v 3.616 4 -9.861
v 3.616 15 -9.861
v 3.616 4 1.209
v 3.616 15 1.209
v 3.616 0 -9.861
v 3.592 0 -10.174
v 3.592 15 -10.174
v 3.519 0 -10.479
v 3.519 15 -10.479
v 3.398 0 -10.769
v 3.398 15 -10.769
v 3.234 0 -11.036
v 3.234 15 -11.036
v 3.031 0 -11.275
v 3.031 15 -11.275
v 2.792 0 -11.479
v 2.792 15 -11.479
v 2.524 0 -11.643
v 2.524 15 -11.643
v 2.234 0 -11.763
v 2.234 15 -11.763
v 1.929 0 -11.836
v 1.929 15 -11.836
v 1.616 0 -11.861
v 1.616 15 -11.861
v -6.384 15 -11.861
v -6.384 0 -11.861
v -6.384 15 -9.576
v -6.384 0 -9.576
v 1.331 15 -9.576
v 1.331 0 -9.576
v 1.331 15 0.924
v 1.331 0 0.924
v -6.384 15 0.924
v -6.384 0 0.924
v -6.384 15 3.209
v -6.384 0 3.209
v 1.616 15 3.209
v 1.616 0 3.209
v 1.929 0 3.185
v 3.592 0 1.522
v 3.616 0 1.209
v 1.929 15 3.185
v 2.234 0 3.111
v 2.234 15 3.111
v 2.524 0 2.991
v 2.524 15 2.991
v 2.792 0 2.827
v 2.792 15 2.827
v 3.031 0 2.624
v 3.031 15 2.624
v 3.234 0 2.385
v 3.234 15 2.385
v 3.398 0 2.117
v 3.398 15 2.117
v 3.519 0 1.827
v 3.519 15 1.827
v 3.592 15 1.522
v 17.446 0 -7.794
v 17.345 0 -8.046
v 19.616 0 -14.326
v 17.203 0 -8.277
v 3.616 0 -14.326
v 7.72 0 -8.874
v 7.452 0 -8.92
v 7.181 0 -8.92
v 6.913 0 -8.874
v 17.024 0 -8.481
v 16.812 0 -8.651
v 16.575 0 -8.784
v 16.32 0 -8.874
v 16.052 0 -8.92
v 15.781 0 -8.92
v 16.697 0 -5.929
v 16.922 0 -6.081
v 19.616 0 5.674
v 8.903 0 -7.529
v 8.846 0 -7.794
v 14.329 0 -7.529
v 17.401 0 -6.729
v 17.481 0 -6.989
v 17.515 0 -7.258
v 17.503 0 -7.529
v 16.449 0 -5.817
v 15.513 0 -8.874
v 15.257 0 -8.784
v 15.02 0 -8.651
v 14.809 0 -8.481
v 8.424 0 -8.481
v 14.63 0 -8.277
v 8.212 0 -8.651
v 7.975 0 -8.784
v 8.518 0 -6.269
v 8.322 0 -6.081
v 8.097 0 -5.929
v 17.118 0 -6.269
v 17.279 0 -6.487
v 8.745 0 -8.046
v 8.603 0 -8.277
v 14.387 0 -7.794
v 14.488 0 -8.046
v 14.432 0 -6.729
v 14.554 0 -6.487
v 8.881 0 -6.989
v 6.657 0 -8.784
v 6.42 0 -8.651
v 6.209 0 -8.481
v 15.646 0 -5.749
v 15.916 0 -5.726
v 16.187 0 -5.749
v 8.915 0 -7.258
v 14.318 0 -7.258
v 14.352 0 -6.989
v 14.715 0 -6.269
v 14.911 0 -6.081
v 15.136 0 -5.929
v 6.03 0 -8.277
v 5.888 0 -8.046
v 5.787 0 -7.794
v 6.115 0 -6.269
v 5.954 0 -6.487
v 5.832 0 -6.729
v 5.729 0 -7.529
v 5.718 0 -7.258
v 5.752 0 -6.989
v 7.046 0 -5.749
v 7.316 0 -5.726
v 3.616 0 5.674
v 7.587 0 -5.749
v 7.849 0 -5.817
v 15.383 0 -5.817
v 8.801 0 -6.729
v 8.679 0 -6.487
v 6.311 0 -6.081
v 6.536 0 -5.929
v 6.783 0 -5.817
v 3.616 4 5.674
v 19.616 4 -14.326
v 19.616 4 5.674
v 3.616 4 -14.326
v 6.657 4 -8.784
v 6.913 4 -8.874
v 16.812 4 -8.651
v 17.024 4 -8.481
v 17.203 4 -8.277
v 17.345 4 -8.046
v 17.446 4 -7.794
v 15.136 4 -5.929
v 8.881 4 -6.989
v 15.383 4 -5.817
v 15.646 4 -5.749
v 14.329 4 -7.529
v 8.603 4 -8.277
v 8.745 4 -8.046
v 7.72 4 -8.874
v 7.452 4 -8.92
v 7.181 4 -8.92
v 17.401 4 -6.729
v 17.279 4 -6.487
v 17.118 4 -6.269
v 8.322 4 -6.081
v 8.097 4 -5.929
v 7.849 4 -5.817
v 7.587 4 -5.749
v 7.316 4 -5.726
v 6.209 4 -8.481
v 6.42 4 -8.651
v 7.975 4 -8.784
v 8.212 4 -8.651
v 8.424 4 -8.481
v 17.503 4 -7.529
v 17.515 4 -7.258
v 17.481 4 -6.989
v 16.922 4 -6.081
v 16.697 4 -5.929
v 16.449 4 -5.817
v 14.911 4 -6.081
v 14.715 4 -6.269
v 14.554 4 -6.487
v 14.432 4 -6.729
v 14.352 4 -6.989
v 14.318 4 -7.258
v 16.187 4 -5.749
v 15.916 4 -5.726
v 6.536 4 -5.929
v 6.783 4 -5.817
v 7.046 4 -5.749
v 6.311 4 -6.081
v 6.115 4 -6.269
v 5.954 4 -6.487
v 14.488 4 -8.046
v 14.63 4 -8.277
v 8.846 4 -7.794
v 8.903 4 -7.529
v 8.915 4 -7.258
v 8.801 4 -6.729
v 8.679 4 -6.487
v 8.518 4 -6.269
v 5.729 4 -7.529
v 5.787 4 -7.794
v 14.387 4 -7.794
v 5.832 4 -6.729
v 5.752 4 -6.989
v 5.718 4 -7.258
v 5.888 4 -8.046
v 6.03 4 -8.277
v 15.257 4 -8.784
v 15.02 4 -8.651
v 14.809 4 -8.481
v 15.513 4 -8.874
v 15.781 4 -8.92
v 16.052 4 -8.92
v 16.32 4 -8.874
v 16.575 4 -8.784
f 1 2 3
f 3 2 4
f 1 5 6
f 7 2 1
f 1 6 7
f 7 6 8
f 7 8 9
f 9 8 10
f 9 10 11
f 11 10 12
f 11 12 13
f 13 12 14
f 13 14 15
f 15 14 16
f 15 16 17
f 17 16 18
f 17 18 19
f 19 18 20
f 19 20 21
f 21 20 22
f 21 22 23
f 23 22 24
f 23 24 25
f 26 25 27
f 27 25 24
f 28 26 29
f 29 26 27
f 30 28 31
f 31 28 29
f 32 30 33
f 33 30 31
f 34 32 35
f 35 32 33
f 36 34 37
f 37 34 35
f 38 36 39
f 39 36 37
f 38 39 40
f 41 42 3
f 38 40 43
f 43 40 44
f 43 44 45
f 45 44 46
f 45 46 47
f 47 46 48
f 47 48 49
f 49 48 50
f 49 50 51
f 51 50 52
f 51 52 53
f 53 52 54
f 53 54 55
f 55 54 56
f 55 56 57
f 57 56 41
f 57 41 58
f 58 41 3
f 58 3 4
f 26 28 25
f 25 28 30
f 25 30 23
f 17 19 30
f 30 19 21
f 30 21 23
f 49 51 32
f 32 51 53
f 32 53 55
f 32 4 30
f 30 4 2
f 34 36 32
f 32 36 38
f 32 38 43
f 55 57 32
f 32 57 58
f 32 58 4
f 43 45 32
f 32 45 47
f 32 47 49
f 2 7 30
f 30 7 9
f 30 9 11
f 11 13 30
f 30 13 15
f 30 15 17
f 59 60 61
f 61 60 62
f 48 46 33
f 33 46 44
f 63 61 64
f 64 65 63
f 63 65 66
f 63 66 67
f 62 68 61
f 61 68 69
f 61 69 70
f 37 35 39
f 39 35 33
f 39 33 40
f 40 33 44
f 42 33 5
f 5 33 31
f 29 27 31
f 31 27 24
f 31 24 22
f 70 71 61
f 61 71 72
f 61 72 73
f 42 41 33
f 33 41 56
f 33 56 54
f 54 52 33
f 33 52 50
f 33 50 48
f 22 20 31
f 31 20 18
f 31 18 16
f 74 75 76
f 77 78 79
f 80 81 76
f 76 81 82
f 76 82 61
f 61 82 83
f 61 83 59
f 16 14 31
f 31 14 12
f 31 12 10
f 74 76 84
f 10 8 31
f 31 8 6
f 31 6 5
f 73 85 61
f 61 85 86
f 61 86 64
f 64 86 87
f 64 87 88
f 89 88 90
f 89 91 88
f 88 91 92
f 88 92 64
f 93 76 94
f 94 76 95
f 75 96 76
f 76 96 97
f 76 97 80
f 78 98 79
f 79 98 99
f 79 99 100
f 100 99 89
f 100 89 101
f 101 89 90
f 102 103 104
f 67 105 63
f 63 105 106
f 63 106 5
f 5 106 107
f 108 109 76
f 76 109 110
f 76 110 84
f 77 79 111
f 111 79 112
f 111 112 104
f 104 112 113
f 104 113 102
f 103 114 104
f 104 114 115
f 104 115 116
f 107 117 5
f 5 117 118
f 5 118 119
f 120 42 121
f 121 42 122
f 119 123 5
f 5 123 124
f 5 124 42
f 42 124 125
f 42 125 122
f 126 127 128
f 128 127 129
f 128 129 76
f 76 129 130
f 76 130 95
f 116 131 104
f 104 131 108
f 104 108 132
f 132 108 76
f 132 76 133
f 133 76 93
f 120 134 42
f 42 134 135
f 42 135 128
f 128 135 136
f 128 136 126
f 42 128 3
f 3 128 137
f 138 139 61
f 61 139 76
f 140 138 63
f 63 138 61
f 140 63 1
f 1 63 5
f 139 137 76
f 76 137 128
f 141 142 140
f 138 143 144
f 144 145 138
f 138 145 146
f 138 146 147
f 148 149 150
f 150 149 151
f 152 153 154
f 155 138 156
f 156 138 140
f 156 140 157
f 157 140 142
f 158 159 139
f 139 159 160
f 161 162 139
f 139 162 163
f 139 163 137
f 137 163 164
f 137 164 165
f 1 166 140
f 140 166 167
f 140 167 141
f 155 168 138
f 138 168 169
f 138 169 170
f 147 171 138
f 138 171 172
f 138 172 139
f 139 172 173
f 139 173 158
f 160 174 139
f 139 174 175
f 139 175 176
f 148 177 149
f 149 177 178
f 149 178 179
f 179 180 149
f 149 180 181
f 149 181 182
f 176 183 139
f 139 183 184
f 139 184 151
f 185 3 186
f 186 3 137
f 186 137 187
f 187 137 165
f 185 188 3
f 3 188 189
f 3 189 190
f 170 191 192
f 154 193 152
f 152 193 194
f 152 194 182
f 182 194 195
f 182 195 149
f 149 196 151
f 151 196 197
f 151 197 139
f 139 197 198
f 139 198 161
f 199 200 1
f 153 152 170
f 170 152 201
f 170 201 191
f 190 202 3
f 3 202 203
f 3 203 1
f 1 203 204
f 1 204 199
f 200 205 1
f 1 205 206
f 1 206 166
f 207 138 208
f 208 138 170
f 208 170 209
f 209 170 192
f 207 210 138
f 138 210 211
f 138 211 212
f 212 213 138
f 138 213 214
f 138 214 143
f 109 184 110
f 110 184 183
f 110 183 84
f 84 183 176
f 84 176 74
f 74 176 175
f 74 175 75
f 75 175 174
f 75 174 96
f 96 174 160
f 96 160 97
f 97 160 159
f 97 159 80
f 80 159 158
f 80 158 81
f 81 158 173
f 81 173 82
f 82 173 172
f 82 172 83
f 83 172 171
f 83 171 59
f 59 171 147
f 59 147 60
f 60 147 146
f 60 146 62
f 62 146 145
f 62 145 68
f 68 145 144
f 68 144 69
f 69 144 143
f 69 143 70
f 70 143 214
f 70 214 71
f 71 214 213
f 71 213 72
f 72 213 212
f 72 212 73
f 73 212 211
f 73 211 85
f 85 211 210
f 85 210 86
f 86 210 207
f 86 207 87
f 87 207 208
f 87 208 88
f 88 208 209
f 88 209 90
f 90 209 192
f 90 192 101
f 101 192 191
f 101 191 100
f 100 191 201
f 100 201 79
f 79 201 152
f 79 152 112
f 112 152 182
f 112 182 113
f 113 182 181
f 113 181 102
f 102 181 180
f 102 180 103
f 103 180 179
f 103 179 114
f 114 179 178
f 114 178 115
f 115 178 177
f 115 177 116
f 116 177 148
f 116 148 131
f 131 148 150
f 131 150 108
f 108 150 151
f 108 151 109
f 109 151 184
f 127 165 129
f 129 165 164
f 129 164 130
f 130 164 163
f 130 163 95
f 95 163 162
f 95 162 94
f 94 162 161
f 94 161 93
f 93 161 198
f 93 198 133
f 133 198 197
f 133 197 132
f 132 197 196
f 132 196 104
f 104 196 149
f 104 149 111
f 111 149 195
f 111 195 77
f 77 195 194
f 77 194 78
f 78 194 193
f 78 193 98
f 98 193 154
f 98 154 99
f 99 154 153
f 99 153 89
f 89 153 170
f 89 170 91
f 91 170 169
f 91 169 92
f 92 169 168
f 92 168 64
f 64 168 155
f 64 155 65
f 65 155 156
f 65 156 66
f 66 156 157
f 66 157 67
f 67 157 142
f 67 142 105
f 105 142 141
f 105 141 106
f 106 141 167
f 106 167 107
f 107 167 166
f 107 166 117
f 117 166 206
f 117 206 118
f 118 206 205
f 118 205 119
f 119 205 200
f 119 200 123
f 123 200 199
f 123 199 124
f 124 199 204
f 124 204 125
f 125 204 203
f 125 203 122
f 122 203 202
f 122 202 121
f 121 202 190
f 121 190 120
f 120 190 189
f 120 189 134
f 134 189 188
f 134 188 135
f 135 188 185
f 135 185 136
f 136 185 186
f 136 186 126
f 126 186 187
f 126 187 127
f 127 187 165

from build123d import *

# Parameters (mm, degrees)
EXTRUDE_3_DEPTH     = 15
EXTRUDE_4_DEPTH     = 4
SKETCH_8_R          = 1.6
CUT_EXTRUDE_1_DEPTH = 27.665153141


with BuildPart() as part:
    # 草图3 → 凸台-拉伸3 (new body)
    with BuildSketch(Plane(origin=(0, 0, 0), x_dir=(1, 0, 0), z_dir=(0, 1, 0))):
        with BuildLine():
            Line((1.616451797, 11.860683611), (-6.383548203, 11.860683611))
            Line((-6.383548203, 11.860683611), (-6.383548203, 9.575683611))
            Line((-6.383548203, 9.575683611), (1.331451797, 9.575683611))
            Line((1.331451797, 9.575683611), (1.331451797, -0.924316389))
            Line((1.331451797, -0.924316389), (-6.383548203, -0.924316389))
            Line((-6.383548203, -0.924316389), (-6.383548203, -3.209316389))
            Line((-6.383548203, -3.209316389), (1.616451797, -3.209316389))
            ThreePointArc((1.616451797, -3.209316389), (3.030665359, -2.623529952), (3.616451797, -1.209316389))
            Line((3.616451797, -1.209316389), (3.616451797, 9.860683611))
            ThreePointArc((3.616451797, 9.860683611), (3.030665359, 11.274897173), (1.616451797, 11.860683611))
        make_face()
    extrude(amount=EXTRUDE_3_DEPTH)

    # 草图3<4> → 凸台-拉伸4 (add)
    with BuildSketch(Plane(origin=(0, 0, 0), x_dir=(1, 0, 0), z_dir=(0, 1, 0))):
        Polygon((3.616451797, 14.325683611), (3.616451797, 9.860683611), (3.616451797, -1.209316389), (3.616451797, -5.674316389), (19.616451797, -5.674316389), (19.616451797, 14.325683611), align=None)
    extrude(amount=EXTRUDE_4_DEPTH)

    # 草图8 → 切除-拉伸1 (cut, through all)
    with BuildSketch(Plane(origin=(0, 4, 0), x_dir=(1, 0, 0), z_dir=(0, 1, 0))):
        with Locations((7.316451797, 7.325683611)):
            Circle(SKETCH_8_R)
        with Locations((15.916451797, 7.325683611)):
            Circle(SKETCH_8_R)
    extrude(amount=-CUT_EXTRUDE_1_DEPTH, mode=Mode.SUBTRACT)


solid = part.part
